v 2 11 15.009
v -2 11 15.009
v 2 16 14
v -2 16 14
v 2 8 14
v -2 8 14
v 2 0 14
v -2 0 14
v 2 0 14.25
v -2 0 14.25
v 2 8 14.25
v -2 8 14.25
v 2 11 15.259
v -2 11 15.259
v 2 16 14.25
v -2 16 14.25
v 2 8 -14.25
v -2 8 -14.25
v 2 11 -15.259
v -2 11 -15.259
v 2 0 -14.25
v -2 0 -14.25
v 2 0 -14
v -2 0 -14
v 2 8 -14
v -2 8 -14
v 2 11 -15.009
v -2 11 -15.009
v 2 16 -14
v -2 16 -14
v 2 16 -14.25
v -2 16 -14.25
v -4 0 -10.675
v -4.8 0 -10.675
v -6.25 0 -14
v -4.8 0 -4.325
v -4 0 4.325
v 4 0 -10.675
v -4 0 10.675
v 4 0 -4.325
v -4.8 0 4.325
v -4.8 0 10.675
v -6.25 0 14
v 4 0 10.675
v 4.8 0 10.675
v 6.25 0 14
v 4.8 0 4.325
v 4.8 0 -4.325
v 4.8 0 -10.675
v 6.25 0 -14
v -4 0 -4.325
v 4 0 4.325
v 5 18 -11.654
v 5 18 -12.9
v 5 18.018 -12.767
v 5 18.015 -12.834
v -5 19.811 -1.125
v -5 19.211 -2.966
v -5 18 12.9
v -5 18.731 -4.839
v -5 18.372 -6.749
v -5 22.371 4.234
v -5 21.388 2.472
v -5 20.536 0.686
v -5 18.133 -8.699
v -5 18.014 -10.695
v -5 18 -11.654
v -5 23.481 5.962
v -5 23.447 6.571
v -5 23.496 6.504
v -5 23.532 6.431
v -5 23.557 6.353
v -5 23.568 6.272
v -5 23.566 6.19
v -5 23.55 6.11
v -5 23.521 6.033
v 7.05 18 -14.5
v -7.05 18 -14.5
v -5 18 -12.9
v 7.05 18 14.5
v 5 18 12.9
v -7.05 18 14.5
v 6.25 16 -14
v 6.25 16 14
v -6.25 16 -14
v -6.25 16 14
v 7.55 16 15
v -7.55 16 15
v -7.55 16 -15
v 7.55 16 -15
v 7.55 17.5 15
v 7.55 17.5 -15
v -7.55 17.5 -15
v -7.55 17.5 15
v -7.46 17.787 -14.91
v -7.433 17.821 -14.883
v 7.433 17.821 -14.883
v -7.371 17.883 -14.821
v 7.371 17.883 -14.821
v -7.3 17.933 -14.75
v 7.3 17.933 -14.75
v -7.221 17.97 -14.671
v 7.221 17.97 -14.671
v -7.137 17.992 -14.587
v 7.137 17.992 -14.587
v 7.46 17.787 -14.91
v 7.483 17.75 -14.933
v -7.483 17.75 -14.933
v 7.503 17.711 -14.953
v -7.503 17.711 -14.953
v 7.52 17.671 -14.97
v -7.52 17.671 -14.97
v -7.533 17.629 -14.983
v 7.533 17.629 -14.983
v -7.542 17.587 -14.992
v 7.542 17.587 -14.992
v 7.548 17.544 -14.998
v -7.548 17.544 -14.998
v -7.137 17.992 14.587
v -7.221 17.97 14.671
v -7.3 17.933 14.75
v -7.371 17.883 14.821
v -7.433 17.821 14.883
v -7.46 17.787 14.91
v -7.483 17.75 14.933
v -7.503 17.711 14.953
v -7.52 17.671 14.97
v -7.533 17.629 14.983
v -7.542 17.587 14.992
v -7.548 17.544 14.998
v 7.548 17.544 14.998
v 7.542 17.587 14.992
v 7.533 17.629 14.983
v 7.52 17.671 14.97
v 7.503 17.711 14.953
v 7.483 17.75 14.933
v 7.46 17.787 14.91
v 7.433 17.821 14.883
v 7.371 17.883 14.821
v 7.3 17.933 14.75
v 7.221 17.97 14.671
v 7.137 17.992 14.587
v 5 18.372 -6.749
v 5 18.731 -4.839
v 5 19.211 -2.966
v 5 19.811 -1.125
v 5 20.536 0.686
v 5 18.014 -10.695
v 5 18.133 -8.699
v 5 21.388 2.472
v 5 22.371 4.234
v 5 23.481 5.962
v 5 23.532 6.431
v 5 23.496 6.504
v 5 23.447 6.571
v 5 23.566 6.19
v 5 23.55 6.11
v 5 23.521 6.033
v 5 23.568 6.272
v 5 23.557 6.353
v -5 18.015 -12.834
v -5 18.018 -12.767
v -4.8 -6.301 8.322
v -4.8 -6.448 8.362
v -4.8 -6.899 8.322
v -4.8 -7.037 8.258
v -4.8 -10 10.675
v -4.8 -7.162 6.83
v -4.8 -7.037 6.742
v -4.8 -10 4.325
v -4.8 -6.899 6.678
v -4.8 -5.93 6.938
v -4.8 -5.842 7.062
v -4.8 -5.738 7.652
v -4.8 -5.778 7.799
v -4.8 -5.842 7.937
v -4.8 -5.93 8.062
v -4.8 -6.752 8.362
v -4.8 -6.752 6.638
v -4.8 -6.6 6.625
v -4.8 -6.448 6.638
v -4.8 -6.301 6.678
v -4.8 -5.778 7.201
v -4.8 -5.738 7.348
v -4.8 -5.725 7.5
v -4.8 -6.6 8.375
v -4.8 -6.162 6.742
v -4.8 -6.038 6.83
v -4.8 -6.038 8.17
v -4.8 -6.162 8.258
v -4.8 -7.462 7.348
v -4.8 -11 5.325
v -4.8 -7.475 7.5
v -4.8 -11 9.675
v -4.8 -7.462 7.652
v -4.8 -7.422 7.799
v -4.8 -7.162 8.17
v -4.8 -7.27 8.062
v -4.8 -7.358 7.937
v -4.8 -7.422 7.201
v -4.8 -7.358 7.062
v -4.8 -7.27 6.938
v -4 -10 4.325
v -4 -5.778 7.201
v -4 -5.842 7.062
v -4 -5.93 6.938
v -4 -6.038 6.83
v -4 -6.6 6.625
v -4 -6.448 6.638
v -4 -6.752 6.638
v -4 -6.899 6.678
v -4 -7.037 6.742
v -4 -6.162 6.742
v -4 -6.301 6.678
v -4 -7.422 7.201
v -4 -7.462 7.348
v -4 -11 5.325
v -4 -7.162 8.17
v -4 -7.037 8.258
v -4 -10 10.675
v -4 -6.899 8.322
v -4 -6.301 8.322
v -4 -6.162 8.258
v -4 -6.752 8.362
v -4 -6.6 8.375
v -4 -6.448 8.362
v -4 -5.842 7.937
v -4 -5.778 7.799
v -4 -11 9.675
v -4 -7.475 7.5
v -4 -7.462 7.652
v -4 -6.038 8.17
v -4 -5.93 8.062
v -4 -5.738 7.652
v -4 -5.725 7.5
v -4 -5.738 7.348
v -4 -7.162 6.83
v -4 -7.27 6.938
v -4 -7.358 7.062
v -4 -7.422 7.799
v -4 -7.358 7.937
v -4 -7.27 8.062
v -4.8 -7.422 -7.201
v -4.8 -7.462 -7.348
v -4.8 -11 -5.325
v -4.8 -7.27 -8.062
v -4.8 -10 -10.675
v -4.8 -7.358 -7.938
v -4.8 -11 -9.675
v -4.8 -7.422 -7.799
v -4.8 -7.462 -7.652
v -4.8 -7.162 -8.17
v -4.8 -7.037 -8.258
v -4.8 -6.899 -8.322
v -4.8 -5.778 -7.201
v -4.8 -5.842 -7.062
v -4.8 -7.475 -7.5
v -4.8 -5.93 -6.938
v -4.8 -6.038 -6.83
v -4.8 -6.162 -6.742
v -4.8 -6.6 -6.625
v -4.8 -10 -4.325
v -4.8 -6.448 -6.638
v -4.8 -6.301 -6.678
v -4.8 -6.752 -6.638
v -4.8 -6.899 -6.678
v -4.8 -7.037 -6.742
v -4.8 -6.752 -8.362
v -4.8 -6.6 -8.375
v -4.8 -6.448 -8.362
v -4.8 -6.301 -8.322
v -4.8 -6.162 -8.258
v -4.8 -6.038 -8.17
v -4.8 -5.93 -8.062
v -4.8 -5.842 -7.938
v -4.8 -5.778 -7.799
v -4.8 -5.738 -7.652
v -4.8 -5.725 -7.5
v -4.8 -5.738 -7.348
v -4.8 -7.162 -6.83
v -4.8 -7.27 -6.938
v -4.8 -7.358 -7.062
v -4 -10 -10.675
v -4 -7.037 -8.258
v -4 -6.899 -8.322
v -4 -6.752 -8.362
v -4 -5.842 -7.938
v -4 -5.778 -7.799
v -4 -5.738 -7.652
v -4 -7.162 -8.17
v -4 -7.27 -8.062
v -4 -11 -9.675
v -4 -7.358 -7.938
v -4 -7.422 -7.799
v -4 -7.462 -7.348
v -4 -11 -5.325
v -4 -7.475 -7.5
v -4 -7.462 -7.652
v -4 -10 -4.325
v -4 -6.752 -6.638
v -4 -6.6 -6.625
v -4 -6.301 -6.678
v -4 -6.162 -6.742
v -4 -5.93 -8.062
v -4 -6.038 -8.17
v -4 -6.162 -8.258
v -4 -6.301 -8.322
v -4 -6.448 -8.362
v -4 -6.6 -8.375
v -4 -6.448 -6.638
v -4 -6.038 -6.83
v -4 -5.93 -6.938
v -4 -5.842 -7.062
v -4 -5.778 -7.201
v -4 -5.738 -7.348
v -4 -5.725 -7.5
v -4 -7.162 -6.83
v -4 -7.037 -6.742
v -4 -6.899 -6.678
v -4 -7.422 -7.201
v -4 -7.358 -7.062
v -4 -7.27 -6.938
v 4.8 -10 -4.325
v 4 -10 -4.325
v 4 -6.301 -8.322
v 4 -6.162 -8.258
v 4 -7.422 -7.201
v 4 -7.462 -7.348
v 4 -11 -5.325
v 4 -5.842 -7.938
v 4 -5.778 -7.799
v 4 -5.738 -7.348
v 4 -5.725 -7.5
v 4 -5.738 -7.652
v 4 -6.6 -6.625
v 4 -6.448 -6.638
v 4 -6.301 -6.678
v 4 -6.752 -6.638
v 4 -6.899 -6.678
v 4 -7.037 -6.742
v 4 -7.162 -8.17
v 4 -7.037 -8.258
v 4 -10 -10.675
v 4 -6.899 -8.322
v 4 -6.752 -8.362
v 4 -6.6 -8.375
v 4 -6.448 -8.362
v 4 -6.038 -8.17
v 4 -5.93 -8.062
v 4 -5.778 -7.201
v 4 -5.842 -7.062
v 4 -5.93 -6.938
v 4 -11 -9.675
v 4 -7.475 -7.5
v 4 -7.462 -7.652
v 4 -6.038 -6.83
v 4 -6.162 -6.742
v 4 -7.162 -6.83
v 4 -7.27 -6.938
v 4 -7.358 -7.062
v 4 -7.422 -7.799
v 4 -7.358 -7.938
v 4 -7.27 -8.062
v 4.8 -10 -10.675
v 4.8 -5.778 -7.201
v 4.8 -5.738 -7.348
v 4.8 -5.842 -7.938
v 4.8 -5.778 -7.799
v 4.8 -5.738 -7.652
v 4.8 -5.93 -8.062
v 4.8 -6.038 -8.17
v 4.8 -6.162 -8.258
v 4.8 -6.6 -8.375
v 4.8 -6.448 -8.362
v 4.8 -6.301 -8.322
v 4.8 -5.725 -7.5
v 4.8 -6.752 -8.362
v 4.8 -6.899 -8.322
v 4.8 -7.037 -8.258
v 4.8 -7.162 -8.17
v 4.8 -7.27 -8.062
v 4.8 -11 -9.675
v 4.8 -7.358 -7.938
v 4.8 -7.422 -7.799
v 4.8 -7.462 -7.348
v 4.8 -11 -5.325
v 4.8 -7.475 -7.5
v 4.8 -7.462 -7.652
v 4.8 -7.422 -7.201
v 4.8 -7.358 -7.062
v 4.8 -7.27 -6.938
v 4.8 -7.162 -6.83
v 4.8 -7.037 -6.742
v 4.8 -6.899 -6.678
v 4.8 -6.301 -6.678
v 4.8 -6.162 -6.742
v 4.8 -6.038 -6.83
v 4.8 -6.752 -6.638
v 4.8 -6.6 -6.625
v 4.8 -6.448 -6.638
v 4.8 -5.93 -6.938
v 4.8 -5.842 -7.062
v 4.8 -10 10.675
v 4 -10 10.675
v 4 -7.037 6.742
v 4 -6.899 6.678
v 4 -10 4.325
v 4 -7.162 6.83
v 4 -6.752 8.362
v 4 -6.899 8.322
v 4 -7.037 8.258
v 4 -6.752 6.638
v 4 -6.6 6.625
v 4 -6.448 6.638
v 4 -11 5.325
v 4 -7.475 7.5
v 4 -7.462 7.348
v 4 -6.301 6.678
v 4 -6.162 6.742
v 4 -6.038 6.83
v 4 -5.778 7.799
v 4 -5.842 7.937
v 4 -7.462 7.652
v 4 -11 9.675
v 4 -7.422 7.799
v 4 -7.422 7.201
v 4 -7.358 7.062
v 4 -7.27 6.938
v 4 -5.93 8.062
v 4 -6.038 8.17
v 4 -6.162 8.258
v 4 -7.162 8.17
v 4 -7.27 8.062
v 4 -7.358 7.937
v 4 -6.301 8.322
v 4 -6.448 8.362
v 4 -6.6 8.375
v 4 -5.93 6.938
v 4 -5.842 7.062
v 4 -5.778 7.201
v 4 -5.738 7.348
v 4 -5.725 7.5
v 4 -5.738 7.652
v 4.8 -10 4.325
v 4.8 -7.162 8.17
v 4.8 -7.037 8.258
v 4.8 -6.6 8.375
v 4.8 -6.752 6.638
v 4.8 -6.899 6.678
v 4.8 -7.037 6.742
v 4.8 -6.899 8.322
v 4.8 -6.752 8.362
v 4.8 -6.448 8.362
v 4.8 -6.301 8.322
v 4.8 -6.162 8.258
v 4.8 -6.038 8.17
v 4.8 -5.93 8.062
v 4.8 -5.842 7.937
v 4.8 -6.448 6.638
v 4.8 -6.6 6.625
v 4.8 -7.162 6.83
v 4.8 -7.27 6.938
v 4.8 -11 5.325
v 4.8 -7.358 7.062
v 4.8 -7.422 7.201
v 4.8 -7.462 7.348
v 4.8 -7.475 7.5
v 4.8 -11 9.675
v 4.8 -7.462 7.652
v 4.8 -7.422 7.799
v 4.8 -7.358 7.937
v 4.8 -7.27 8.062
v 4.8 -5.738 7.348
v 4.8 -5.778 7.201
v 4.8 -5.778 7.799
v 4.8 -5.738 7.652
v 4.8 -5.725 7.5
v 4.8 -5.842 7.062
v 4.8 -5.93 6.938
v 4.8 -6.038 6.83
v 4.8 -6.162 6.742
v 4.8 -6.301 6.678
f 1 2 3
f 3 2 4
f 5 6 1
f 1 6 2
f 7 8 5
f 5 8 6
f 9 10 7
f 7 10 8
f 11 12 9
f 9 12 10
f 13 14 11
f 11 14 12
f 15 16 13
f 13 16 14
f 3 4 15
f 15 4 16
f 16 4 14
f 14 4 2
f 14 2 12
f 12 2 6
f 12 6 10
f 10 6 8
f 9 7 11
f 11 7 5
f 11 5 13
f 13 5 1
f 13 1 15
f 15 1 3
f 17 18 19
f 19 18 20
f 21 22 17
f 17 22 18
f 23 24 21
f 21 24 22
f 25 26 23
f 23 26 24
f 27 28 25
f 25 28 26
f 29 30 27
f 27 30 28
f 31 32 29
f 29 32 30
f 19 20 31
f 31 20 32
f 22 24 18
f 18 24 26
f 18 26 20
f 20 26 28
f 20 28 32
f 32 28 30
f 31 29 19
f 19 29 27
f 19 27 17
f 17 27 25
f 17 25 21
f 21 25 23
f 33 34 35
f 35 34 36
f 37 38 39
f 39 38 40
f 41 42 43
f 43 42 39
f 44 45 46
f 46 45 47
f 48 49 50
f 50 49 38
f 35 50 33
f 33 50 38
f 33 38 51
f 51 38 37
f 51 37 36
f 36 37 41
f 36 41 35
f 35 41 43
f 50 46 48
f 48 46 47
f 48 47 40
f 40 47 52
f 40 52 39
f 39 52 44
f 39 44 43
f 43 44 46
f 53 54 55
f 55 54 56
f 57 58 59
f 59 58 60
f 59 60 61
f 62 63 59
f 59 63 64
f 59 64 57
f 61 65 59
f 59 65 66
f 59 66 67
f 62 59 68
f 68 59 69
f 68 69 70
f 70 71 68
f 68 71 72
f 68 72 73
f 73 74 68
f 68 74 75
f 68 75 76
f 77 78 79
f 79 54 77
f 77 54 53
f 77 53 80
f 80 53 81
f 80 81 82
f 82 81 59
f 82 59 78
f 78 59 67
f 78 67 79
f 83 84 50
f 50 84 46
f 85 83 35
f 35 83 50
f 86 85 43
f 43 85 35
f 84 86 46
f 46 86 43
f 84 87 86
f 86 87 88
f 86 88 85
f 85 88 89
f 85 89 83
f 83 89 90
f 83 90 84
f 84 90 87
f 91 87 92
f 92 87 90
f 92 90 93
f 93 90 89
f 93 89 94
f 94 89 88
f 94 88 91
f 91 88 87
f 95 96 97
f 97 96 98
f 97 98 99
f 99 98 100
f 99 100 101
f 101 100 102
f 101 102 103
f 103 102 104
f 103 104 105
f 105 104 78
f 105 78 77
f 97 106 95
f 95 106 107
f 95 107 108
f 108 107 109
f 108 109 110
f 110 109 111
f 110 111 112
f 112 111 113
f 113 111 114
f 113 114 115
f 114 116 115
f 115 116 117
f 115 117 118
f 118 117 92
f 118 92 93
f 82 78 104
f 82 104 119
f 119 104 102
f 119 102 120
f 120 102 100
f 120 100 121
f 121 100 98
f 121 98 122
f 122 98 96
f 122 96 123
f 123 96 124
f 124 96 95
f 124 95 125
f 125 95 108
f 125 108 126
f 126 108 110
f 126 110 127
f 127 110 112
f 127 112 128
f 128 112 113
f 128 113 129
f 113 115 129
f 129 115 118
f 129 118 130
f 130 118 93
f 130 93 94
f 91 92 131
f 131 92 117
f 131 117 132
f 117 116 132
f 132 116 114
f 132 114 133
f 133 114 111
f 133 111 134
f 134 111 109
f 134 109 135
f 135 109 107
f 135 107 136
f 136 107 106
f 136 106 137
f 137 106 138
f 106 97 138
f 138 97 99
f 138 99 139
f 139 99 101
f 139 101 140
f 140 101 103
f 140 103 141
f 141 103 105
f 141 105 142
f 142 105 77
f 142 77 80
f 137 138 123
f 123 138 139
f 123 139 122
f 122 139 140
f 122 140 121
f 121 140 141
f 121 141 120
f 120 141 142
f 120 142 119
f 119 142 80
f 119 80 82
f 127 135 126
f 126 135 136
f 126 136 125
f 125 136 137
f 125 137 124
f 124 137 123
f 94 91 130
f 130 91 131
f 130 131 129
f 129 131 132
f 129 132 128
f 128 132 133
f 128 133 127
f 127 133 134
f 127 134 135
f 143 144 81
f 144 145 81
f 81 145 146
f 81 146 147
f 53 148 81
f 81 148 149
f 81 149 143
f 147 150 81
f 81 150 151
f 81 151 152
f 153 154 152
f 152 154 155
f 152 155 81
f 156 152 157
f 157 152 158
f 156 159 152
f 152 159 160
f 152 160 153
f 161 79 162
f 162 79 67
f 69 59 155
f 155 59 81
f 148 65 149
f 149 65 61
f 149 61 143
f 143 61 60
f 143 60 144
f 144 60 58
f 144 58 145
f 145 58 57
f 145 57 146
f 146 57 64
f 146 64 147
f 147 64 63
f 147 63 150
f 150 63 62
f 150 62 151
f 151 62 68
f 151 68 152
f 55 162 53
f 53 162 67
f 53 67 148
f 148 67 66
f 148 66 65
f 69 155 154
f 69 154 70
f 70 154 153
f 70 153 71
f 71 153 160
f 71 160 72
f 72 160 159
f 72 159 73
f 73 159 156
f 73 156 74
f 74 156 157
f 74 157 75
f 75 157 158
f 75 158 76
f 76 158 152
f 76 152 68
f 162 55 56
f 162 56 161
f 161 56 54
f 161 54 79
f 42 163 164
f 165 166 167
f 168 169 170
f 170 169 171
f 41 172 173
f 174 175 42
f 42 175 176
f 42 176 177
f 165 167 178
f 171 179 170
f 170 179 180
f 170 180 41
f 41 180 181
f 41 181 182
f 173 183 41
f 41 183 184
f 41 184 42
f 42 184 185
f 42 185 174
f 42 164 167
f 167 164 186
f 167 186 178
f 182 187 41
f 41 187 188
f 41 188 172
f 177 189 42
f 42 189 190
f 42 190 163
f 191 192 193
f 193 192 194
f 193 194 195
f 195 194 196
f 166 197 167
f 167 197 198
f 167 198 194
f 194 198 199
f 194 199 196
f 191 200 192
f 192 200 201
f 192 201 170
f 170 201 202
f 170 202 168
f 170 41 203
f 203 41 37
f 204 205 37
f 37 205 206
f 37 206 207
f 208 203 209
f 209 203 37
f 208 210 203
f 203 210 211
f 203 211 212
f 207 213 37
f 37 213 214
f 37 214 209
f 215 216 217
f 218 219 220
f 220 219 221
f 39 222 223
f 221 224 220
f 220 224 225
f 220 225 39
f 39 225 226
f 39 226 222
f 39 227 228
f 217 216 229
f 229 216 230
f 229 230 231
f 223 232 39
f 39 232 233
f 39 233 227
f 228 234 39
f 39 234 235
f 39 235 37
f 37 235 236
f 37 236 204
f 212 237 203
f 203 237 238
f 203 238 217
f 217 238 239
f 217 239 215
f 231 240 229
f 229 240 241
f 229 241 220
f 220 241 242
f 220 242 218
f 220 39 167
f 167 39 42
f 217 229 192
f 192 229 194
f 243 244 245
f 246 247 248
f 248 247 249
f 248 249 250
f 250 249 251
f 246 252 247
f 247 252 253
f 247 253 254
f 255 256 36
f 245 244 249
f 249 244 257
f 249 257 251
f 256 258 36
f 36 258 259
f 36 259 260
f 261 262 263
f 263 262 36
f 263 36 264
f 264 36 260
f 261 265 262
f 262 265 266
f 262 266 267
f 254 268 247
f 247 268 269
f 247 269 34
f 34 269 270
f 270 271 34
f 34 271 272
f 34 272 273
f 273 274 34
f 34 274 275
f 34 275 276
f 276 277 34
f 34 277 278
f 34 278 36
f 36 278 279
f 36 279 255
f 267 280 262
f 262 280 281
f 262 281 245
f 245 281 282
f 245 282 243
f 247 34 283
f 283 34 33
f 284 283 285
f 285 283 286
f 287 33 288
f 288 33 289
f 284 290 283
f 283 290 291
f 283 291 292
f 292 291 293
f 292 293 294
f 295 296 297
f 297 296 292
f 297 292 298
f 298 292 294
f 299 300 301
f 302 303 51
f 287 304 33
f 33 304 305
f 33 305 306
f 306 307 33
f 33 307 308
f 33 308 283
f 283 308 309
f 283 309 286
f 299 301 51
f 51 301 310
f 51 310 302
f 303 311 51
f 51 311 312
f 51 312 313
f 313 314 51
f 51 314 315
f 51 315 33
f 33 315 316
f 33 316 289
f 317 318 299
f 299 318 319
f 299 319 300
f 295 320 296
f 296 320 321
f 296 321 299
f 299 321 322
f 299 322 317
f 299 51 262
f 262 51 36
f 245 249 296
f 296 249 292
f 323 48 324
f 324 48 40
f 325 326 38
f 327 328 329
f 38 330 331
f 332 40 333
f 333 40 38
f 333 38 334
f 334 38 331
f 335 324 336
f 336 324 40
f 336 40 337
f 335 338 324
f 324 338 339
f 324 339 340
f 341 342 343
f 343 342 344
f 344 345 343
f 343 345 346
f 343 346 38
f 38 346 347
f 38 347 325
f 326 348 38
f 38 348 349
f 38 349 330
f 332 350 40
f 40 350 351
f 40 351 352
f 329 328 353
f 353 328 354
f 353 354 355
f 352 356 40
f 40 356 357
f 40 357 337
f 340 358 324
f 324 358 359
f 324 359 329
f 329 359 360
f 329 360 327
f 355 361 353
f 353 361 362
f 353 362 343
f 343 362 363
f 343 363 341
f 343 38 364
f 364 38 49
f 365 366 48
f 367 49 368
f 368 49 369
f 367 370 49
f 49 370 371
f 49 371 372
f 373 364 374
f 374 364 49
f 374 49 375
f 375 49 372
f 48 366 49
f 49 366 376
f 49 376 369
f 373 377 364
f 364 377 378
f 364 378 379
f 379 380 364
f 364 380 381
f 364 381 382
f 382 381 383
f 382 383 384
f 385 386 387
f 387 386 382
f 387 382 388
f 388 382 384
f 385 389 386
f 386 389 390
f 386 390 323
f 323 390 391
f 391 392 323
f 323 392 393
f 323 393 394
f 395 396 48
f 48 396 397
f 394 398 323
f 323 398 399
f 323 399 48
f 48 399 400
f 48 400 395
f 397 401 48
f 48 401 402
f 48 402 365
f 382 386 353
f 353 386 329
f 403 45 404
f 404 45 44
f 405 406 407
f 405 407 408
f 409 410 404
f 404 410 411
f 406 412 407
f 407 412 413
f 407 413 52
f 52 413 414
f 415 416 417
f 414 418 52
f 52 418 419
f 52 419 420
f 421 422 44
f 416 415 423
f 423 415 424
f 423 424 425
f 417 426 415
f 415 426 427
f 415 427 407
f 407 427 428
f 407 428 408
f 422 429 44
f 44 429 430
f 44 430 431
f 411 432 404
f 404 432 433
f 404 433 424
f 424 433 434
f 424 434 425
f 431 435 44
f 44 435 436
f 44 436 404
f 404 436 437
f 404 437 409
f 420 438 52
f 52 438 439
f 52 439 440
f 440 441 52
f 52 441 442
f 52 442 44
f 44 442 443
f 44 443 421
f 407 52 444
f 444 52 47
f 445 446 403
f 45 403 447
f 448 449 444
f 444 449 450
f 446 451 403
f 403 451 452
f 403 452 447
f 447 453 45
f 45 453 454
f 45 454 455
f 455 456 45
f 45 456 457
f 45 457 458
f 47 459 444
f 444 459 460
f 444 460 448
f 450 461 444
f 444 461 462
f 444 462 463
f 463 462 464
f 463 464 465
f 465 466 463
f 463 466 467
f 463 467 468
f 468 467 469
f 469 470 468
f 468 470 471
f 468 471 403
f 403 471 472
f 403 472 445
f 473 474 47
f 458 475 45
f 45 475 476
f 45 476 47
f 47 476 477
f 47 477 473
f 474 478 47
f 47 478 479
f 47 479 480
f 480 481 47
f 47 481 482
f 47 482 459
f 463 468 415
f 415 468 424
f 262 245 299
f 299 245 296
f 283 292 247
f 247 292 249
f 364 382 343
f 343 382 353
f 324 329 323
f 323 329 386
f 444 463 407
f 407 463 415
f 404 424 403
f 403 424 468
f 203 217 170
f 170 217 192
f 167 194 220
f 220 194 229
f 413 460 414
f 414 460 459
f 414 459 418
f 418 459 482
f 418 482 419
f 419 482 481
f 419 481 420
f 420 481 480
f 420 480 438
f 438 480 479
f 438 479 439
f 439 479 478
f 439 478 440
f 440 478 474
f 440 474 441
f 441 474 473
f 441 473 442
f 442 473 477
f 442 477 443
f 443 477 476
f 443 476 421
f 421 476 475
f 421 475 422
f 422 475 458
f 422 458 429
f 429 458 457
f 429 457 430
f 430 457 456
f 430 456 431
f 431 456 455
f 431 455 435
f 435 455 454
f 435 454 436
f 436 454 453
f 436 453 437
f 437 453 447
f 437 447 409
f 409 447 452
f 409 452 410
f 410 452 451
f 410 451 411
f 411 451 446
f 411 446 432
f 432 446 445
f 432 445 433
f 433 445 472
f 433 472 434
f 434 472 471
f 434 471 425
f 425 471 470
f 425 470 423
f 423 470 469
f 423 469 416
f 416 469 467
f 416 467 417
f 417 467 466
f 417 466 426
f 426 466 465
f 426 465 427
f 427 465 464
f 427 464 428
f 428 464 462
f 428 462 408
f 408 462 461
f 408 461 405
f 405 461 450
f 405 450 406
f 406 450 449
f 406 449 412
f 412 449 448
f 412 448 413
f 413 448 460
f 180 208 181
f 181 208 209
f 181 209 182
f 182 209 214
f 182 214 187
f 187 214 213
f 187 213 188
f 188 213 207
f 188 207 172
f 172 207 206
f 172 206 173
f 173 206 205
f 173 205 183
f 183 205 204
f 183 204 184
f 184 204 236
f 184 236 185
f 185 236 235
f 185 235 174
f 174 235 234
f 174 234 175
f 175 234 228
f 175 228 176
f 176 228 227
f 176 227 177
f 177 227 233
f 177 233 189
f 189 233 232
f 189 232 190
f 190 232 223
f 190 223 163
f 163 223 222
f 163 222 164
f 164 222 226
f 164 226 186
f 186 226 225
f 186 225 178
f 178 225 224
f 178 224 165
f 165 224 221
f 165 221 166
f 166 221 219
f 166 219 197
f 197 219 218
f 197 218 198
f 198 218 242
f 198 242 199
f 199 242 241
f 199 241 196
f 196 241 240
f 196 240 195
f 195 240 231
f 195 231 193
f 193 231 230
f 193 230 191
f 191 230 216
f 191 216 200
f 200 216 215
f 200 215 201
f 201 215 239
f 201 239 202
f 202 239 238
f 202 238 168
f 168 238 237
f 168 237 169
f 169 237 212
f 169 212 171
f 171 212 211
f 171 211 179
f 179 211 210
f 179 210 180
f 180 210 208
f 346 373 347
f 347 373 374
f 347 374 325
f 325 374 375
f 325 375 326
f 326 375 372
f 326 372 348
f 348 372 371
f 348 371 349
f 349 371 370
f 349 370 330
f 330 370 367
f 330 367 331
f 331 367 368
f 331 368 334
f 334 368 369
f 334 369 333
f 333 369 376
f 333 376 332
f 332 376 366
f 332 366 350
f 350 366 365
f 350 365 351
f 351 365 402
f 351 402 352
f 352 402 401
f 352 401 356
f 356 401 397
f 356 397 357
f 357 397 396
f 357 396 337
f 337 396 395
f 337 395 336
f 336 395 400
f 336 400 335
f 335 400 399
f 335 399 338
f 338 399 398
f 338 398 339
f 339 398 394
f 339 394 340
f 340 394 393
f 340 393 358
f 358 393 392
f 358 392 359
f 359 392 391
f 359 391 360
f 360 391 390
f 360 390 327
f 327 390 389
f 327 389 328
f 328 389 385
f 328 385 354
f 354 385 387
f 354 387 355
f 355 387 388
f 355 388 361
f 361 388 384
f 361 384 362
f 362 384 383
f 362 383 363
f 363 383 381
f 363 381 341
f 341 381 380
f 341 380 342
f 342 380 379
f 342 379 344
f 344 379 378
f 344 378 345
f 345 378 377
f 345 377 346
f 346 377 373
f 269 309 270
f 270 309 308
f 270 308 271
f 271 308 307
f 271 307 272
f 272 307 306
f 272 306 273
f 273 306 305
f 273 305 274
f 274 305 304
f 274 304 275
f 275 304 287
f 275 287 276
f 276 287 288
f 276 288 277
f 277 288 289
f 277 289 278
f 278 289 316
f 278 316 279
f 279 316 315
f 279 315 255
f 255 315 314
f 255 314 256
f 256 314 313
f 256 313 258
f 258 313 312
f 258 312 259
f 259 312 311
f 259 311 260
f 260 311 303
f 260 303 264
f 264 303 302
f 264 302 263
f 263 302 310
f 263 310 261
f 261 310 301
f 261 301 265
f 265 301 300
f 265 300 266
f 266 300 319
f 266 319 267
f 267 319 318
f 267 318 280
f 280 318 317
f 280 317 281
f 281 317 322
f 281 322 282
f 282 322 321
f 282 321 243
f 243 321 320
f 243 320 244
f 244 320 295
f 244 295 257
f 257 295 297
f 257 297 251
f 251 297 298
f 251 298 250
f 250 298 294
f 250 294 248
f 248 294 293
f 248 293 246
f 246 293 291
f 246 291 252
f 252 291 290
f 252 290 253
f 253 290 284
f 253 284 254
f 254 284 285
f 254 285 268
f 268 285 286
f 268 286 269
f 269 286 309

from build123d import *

# Parameters (mm, degrees)
SKETCH1_W                  = 12.5
SKETCH1_H                  = 28
BOSS_EXTRUDE1_DEPTH        = 16
SKETCH2_W                  = 15.1
SKETCH2_H                  = 30
BOSS_EXTRUDE2_DEPTH        = 2
FILLET1_R                  = 0.5
SKETCH3_W                  = 10
SKETCH3_H                  = 25.8
BOSS_EXTRUDE3_DEPTH        = 5.7
CUT_EXTRUDE1_DEPTH         = 31.727715502
CUT_EXTRUDE1_DEPTH_BACK    = 31.727715502
FILLET2_R                  = 0.5
FILLET3_R                  = 0.4
BOSS_EXTRUDE4_DEPTH        = 2
BOSS_EXTRUDE4_DEPTH_BACK   = 2
BOSS_EXTRUDE4_2_DEPTH      = 2
BOSS_EXTRUDE4_2_DEPTH_BACK = 2
SKETCH9_W                  = 0.8
SKETCH9_H                  = 6.35
BOSS_EXTRUDE5_DEPTH        = 11
CHAMFER1_SIZE              = 1
SKETCH10_R                 = 0.875
CUT_EXTRUDE2_DEPTH         = 31.673042539


with BuildPart() as part:
    # Sketch1 → Boss-Extrude1 (new body)
    with BuildSketch(Plane(origin=(0, 0, 0), x_dir=(1, 0, 0), z_dir=(0, 1, 0))):
        Rectangle(SKETCH1_W, SKETCH1_H)
    extrude(amount=BOSS_EXTRUDE1_DEPTH)

    # Sketch2 → Boss-Extrude2 (add)
    with BuildSketch(Plane(origin=(0, 16, 0), x_dir=(1, 0, 0), z_dir=(0, 1, 0))):
        Rectangle(SKETCH2_W, SKETCH2_H)
    extrude(amount=BOSS_EXTRUDE2_DEPTH)

    # Fillet1
    fillet1_edges = [part.edges().sort_by_distance(p)[0] for p in [
        (7.55, 18, 0),
        (0, 18, -15),
        (-7.55, 18, 0),
        (0, 18, 15),
    ]]
    fillet(fillet1_edges, radius=FILLET1_R)

    # Sketch3 → Boss-Extrude3 (add)
    with BuildSketch(Plane(origin=(0, 18, 0), x_dir=(1, 0, 0), z_dir=(0, 1, 0))):
        Rectangle(SKETCH3_W, SKETCH3_H)
    extrude(amount=BOSS_EXTRUDE3_DEPTH)

    # Sketch4 → Cut-Extrude1 (cut, two sides: drawn at the far end of the back side and taken through both)
    with BuildSketch(Plane(origin=(5, 0, 0), x_dir=(0, 0, -1), z_dir=(1, 0, 0)).offset(-CUT_EXTRUDE1_DEPTH_BACK)):
        Polygon((-12.9, 23.7), (-12.9, 18), (-6.277278159, 23.7), align=None)
        with BuildLine():
            Line((12.9, 23.7), (-6.277278159, 23.7))
            add(Edge.make_bspline(
                [(-6.277278159, 23.7), (2.345374626, 17.640478228), (12.9, 18.022676474)],
                knots=[0, 0, 0, 1, 1, 1], degree=2))
            Line((12.9, 18.022676474), (12.9, 23.7))
        make_face()
    extrude(amount=CUT_EXTRUDE1_DEPTH + CUT_EXTRUDE1_DEPTH_BACK, mode=Mode.SUBTRACT)

    # Fillet2
    fillet2_edges = [part.edges().sort_by_distance(p)[0] for p in [
        (0, 23.7, 6.277278159),
    ]]
    fillet(fillet2_edges, radius=FILLET2_R)

    # Fillet3
    # the kernel refuses this fillet: 0.4 mm, written as the material it takes off along each edge
    with BuildSketch(Plane(origin=(5.331871434, 18.022676474, -12.9), x_dir=(0, -0.034291988848172396, 0.9994118567942032), z_dir=(-1, 0, 0))) as fillet3_piece_1:
        with BuildLine():
            CenterArc((0.133508314, -0.399999278), FILLET3_R, 90.108824788, 19.270863365)
            Line((0.000777621, -0.022663137), (-0.001876992, -0.015116415))
            ThreePointArc((-0.001876992, -0.015116415), (-0.007606484, -0.011605905), (-0.007995295, -0.000274336))
            Line((-0.007995295, -0.000274336), (1.5175e-05, 0.007999986))
            ThreePointArc((1.5175e-05, 0.007999986), (0.066374292, 0.007937006), (0.132733379, 0.007999986))
            Line((0.132733379, 0.007999986), (0.132748574, 0))
        make_face()
    extrude(amount=10.663742869, mode=Mode.SUBTRACT)

    # Sketch9 → Boss-Extrude5 (add)
    with BuildSketch(Plane.XZ):
        with Locations((-4.4, 7.5)):
            Rectangle(SKETCH9_W, SKETCH9_H)
        with Locations((-4.4, -7.5)):
            Rectangle(SKETCH9_W, SKETCH9_H)
        with Locations((4.4, -7.5)):
            Rectangle(SKETCH9_W, SKETCH9_H)
        with Locations((4.4, 7.5)):
            Rectangle(SKETCH9_W, SKETCH9_H)
    extrude(amount=BOSS_EXTRUDE5_DEPTH)

    # Chamfer1
    chamfer1_edges = [part.edges().sort_by_distance(p)[0] for p in [
        (-4.4, -11, 4.325),
        (-4.4, -11, 10.675),
        (-4.4, -11, -10.675),
        (-4.4, -11, -4.325),
        (4.4, -11, -4.325),
        (4.4, -11, -10.675),
        (4.4, -11, 10.675),
        (4.4, -11, 4.325),
    ]]
    chamfer(chamfer1_edges, length=CHAMFER1_SIZE)

    # Sketch10 → Cut-Extrude2 (cut, through all)
    with BuildSketch(Plane(origin=(4.8, 0, 0), x_dir=(0, 0, -1), z_dir=(1, 0, 0))):
        with Locations((-7.5, -6.6)):
            Circle(SKETCH10_R)
        with Locations((7.5, -6.6)):
            Circle(SKETCH10_R)
    extrude(amount=-CUT_EXTRUDE2_DEPTH, mode=Mode.SUBTRACT)


with BuildPart() as body_2:
    # Sketch8 → Boss-Extrude4 (new, two sides: drawn at the far end of the back side and taken through both)
    with BuildSketch(Plane(origin=(0, 0, 0), x_dir=(0, 0, -1), z_dir=(1, 0, 0)).offset(-BOSS_EXTRUDE4_DEPTH_BACK)):
        Polygon((-14, 16), (-14.25, 16), (-15.259050703, 11), (-14.25, 8), (-14.25, 0), (-14, 0), (-14, 8), (-15.009050703, 11), align=None)
    extrude(amount=BOSS_EXTRUDE4_DEPTH + BOSS_EXTRUDE4_DEPTH_BACK)


with BuildPart() as body_3:
    # Sketch8 → Boss-Extrude4 2 (new, two sides: drawn at the far end of the back side and taken through both)
    with BuildSketch(Plane(origin=(0, 0, 0), x_dir=(0, 0, -1), z_dir=(1, 0, 0)).offset(-BOSS_EXTRUDE4_2_DEPTH_BACK)):
        Polygon((14.25, 0), (14.25, 8), (15.259050703, 11), (14.25, 16), (14, 16), (15.009050703, 11), (14, 8), (14, 0), align=None)
    extrude(amount=BOSS_EXTRUDE4_2_DEPTH + BOSS_EXTRUDE4_2_DEPTH_BACK)


solid = Compound([part.part, body_2.part, body_3.part])
